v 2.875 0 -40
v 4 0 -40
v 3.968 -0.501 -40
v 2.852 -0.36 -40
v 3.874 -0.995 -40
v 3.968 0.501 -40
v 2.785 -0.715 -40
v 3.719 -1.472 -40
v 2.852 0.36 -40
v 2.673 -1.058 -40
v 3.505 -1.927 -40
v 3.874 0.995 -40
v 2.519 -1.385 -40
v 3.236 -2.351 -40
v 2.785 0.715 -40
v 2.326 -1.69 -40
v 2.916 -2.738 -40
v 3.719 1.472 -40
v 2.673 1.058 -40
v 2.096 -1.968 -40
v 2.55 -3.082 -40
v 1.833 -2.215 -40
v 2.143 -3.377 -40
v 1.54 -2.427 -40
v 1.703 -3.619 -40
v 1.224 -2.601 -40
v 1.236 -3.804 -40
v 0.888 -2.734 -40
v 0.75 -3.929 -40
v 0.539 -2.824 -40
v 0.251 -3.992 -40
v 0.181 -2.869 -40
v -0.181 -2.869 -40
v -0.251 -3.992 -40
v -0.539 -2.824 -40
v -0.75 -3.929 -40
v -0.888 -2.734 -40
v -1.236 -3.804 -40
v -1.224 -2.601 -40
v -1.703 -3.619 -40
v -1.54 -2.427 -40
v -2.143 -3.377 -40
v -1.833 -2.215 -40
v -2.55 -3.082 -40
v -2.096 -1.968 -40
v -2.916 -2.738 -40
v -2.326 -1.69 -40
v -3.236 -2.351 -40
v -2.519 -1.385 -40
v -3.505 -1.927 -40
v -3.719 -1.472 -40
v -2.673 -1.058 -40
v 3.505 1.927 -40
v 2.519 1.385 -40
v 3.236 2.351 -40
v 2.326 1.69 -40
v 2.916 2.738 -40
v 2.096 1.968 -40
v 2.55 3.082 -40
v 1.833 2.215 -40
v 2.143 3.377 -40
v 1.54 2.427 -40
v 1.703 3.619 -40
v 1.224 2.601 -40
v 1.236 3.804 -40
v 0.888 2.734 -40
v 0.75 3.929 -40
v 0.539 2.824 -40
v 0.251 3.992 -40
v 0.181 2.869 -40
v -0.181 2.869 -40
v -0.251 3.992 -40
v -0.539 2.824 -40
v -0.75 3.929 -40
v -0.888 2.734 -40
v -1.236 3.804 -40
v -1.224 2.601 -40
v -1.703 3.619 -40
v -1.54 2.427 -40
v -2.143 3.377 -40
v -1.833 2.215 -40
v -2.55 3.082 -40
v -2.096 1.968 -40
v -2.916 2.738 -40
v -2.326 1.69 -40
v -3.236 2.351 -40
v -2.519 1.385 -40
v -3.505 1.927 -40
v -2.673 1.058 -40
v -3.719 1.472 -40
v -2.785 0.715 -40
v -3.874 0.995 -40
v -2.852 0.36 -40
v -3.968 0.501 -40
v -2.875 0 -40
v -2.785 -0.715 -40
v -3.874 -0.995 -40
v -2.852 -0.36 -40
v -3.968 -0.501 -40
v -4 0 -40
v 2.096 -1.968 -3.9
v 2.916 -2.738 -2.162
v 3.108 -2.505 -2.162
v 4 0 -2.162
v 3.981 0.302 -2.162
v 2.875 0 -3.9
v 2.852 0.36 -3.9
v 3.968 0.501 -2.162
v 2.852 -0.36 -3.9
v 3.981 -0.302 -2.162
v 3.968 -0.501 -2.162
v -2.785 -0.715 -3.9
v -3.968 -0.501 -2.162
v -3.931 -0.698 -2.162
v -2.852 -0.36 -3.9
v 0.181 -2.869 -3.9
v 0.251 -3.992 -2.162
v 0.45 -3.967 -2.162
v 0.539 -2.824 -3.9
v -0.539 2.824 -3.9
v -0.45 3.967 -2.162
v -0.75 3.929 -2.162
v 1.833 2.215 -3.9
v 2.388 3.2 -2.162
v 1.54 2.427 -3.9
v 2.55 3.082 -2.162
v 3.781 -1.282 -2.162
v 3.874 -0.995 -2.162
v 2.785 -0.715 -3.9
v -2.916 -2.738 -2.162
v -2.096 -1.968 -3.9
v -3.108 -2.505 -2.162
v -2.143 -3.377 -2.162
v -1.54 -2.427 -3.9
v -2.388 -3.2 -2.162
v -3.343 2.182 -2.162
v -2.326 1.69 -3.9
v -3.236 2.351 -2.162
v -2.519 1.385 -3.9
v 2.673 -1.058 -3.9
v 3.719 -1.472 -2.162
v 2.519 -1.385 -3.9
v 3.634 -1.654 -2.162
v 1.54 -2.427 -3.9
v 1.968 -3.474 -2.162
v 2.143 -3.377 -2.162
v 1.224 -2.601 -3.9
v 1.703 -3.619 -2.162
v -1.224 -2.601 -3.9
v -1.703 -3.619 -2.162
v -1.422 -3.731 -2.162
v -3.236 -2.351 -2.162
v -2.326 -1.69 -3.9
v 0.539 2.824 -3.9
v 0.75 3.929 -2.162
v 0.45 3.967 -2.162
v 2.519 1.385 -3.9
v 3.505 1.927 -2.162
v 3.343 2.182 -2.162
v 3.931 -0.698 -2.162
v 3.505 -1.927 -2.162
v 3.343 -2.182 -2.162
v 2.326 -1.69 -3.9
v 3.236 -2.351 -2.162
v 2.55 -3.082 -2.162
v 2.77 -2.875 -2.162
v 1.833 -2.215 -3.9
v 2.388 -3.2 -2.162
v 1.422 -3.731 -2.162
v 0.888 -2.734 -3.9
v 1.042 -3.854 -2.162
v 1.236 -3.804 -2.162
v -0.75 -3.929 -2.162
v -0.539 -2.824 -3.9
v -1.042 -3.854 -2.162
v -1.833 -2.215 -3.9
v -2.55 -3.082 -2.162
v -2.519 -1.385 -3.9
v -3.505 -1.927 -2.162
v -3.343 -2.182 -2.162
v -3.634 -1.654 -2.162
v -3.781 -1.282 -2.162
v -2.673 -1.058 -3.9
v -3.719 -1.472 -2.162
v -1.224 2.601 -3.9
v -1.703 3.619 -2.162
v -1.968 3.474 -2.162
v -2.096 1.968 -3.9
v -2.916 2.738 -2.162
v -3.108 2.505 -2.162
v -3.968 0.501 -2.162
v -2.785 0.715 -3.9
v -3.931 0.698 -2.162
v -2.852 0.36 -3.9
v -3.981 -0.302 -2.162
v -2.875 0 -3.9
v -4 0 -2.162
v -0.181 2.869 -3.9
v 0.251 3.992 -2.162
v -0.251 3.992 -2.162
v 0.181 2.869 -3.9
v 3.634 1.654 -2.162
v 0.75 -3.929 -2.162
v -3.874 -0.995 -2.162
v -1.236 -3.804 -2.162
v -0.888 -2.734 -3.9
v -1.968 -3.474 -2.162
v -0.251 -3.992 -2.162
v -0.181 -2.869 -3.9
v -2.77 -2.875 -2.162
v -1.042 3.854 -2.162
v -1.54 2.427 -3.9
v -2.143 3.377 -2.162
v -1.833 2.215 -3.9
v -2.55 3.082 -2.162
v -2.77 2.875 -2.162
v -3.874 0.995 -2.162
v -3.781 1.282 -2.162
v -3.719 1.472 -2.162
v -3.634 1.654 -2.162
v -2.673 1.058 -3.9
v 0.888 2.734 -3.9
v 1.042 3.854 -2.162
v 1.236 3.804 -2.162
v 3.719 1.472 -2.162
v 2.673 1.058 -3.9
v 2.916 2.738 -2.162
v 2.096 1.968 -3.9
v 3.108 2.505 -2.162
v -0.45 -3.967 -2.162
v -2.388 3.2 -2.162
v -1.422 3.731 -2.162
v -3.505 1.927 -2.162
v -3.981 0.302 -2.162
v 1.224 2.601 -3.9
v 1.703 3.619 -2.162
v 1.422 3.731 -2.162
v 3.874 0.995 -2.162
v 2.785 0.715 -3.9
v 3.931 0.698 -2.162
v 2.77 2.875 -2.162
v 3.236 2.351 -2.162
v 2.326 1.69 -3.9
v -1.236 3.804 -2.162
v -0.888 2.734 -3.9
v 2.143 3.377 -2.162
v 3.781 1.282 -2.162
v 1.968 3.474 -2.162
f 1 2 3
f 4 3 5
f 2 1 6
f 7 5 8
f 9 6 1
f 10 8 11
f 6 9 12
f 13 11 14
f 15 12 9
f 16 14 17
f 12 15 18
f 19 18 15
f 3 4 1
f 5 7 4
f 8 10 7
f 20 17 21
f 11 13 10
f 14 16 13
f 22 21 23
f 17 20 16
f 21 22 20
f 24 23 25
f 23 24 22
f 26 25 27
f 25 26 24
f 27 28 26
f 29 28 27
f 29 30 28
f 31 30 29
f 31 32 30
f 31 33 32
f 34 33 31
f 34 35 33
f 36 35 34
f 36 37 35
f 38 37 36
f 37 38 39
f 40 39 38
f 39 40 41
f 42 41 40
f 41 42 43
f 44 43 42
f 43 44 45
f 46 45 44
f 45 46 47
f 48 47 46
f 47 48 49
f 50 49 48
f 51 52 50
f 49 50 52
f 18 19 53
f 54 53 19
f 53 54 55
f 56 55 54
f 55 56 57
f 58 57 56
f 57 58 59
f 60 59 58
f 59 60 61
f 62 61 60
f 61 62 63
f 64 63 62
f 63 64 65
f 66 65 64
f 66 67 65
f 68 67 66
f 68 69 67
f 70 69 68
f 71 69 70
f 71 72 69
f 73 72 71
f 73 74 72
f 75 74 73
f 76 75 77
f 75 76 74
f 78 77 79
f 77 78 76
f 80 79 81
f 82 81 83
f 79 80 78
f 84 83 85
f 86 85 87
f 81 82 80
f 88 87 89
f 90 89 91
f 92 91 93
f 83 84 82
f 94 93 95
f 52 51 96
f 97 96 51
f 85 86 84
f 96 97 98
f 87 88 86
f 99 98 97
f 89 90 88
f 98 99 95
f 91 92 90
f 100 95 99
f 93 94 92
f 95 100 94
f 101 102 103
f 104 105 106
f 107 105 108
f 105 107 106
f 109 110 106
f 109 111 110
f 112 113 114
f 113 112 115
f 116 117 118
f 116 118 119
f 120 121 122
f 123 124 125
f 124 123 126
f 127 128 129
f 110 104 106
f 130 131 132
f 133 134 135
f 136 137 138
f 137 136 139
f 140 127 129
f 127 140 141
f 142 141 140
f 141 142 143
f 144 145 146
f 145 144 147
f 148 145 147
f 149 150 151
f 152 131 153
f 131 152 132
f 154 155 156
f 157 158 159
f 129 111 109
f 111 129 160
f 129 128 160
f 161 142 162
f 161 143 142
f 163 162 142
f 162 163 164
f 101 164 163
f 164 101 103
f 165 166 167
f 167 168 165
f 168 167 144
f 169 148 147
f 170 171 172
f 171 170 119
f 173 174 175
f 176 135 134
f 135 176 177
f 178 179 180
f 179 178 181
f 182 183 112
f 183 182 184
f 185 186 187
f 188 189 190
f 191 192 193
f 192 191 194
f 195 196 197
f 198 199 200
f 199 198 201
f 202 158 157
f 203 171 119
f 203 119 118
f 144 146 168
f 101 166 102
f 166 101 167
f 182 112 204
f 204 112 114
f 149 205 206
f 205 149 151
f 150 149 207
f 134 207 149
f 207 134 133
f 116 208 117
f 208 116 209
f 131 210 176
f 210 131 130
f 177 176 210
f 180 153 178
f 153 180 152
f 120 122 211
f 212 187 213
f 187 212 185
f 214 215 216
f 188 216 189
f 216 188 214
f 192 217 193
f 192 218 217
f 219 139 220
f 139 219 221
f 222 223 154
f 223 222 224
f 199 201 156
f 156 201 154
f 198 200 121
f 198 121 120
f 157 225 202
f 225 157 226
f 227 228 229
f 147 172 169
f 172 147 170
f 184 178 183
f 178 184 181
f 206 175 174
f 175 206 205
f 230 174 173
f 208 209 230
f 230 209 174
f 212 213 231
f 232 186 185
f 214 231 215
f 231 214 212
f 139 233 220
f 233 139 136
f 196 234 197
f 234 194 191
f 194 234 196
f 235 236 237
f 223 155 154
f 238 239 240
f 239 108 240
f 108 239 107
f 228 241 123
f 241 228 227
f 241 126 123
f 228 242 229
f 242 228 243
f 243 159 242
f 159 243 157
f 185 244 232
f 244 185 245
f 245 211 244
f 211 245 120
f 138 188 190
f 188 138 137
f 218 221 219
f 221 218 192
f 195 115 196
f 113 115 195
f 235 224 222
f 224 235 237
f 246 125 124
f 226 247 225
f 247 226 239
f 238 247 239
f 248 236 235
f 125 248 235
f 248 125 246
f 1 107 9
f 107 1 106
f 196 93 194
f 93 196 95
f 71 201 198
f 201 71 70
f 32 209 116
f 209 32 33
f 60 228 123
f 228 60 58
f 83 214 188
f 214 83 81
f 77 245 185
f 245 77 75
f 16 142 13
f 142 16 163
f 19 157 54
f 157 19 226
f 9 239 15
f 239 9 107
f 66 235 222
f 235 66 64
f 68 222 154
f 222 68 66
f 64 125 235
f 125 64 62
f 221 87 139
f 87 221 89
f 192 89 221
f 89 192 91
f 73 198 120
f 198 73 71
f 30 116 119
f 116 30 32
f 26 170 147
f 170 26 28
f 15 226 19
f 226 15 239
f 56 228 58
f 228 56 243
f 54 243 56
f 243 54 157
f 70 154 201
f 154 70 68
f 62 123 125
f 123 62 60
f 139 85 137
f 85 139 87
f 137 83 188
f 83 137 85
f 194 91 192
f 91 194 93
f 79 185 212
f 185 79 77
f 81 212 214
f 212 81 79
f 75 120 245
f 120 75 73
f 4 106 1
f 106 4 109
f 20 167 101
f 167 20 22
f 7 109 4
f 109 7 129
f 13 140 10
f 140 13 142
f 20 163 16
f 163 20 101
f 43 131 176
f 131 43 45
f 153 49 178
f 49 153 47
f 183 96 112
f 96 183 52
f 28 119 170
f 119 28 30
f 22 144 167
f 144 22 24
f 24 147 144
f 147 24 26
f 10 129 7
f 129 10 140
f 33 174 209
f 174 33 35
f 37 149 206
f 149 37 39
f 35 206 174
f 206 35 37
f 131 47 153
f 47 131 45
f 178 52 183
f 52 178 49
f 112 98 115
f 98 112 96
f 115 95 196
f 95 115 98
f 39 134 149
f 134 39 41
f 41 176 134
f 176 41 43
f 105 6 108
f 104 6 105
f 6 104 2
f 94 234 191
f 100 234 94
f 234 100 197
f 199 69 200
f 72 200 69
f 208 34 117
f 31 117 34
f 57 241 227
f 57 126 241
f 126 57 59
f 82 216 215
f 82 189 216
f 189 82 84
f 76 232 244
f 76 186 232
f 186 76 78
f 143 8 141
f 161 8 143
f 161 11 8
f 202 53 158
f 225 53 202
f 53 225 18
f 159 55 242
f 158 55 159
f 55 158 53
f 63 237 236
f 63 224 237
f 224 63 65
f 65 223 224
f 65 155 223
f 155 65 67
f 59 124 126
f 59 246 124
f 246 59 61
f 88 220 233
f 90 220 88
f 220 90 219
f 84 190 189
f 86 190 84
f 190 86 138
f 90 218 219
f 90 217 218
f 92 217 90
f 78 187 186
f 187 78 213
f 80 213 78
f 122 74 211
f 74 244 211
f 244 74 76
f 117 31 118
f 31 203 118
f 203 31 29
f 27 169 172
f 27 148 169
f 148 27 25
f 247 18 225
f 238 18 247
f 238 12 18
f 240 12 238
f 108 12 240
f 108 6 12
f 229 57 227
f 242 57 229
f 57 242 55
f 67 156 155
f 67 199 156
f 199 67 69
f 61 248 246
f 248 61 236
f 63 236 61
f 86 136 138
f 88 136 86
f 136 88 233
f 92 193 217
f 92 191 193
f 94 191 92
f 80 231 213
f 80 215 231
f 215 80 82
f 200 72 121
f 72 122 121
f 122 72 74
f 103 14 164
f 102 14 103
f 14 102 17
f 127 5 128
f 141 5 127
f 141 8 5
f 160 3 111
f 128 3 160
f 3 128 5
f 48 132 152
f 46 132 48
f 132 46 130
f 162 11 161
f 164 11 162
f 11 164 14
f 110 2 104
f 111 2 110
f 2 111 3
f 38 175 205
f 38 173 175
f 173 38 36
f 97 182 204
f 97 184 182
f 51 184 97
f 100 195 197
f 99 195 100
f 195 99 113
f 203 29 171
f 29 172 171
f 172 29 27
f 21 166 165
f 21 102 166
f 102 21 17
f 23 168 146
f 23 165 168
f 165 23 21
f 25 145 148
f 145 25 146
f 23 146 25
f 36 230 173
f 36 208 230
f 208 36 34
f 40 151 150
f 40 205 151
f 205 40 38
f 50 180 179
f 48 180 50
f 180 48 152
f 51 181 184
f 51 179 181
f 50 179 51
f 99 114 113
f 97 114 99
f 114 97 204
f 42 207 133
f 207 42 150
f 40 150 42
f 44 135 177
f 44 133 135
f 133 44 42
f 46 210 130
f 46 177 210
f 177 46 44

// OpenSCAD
$fn = 50;


difference() {
	union() {
		translate(v = [0, 0, -40.0000000000]) {
			cylinder(h = 40, r = 4.0000000000);
		}
		cylinder(h = 0, r = 7.0000000000);
	}
	union() {
		translate(v = [0, 0, 0]) {
			rotate(a = [0, 0, 0]) {
				difference() {
					union() {
						#translate(v = [0, 0, -40.0000000000]) {
							cylinder(h = 40, r = 2.6000000000);
						}
						#translate(v = [0, 0, -3.9000000000]) {
							cylinder(h = 3.9000000000, r1 = 2.8750000000, r2 = 5.4000000000);
						}
						#translate(v = [0, 0, -40.0000000000]) {
							cylinder(h = 40, r = 2.8750000000);
						}
						#translate(v = [0, 0, -40.0000000000]) {
							cylinder(h = 40, r = 2.6000000000);
						}
					}
					union();
				}
			}
		}
	}
}
